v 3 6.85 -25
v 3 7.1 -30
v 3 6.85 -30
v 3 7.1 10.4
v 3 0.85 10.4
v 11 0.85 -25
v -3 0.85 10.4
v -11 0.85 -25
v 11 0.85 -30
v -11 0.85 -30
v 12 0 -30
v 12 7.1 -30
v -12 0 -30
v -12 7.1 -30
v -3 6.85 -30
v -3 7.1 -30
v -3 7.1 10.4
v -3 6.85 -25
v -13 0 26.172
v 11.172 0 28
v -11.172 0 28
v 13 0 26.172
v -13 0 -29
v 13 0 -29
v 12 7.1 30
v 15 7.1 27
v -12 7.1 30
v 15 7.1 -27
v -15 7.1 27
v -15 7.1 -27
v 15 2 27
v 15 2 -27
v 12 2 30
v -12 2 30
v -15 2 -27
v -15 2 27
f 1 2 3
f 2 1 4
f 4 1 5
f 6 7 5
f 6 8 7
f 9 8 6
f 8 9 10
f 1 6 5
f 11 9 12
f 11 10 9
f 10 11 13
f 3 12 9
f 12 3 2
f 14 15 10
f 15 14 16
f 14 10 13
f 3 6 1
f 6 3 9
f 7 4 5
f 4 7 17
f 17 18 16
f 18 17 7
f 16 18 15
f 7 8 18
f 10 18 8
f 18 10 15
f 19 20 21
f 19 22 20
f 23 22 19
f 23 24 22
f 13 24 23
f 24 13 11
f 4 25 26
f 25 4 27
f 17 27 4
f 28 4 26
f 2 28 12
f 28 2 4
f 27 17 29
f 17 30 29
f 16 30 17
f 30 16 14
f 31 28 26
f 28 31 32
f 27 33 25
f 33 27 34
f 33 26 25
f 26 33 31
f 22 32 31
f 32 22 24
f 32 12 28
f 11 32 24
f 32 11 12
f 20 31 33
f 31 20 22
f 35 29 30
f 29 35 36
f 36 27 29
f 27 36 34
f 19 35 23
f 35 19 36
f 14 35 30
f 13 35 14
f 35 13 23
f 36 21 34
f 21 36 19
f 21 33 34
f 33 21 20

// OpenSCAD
// file: peglock_modules.scad
default_peg_diameter=6;
default_peg_spacing=25.4;
default_highpeg_stickout=4.6;
default_highpeg_angleout=8;
default_highpeg_stickup=6;
default_lowpeg_stickout=8;

default_base_width=30;
default_base_height=60;

$peg_diameter = default_peg_diameter;
$peg_spacing = default_peg_spacing;
$highpeg_stickout = default_highpeg_stickout;
$highpeg_angleout = default_highpeg_angleout;
$highpeg_stickup = default_highpeg_stickup;
$lowpeg_stickout = default_lowpeg_stickout;

$base_width = default_base_width;
$base_height = default_base_height;

$peg_radius = default_peg_diameter / 2;
$holder_height = 25.4 + 6 + 4;

module peglockInit(
    peg_diameter = default_peg_diameter,
    peg_spacing = default_peg_spacing,
    highpeg_stickout = default_highpeg_stickout,
    highpeg_angleout = default_highpeg_angleout,
    highpeg_stickup = default_highpeg_stickup,
    lowpeg_stickout = default_lowpeg_stickout,
    base_width = default_base_width,
    base_height = default_base_height
    ) {
    $peg_diameter = peg_diameter;
    $peg_spacing = peg_spacing;
    $highpeg_stickout = highpeg_stickout;
    $highpeg_angleout = highpeg_angleout;
    $highpeg_stickup = highpeg_stickup;
    $lowpeg_stickout = lowpeg_stickout;
    $base_width = base_width;
    $base_height = base_height;

    $peg_radius = $peg_diameter/2;
    $holder_height = 25.4 + 6 + 4;

    children();
}

module quartersphere(radius=$peg_radius) {
    rotate_extrude(angle=-180, $fn=42) intersection() {
        square(radius);
        circle(radius, $fn=42);
    };
}

module halfcylinder(length, radius=$peg_radius) {
    rotate_extrude(angle=-180, $fn=42) square([radius,length]);
    translate([0,0,length]) children();
}

module angledhalfcylinder(length, radius=$peg_radius) {
    intersection() {
        multmatrix([
            [1, 0,-1, 0],
            [0, 1, 0, 0],
            [0, 0, 1, 0]
        ])
        halfcylinder(length + radius, radius);
        
        translate([-length, -radius, 0])
        cube([length + radius, radius, length + radius]);
    };

    translate([-length, 0, length])
    rotate([0,-90,0])
    children();
}

module double(v=[1,0,0]) {
    children();
    mirror(v) children();
}

module halfHolder(is_cutting=false) {
    translate(is_cutting ? [0,0,-5] : [0,0,0])
    cube([3,6,$holder_height] + (is_cutting ? [0,.25,5] : [0,0,0]));

    translate([3,0,0]) {
        linear_extrude($holder_height, scale=0)
        polygon([[0,0], [8,0], [0,6]]);

        if (is_cutting) {
            translate([0,0,-5]) 
            linear_extrude(5) 
            polygon([[0,0], [8,0], [0,6]]);
        }
    }
}

module holder(is_cutting=false) {
    double() halfHolder(is_cutting); 
}

module halfPeglockAttachment() {
    translate([0, -$holder_height/2]) rotate([-90,0,0]) rotate([0,0,-90])
    halfHolder();

    translate([6, -$peg_spacing/2]) rotate([-90,0,-90])
    halfcylinder($lowpeg_stickout)
    quartersphere();
    
    translate([6, +$peg_spacing/2]) rotate([-90,0,-90])
    halfcylinder($highpeg_stickout)
    angledhalfcylinder($highpeg_angleout)
    halfcylinder($highpeg_stickup)
    quartersphere();
}

module peglockAttachment() {
    difference() {
        union() {
            double() translate([.25,0,0]) halfPeglockAttachment();
            linear_extrude(.2) square([.5,$holder_height], center=true); 
        }
        translate([0,0,-.5]) linear_extrude(12) square([6.5,14], center=true); 
    }
}

module chamfer(pt, v0, v1, v2) {
    multmatrix([
        [v0[0],v1[0],v2[0],pt[0]],
        [v0[1],v1[1],v2[1],pt[1]],
        [v0[2],v1[2],v2[2],pt[2]],
    ]) 
    linear_extrude(1) polygon([[0,0],[1,0],[0,1]]);

    translate(pt) cube(1, center=true);
}

module peglockBase(
    width=$base_width,
    height=$base_height
) {
    topright = [width/2, 0, height/2];
    depth = [0, 6.25+.85, 0];

    render() difference() {
        translate(-topright)
        cube(topright * 2 + depth);

        translate([0, .85, 5-height/2]) 
        holder(is_cutting=true);

        double([1,0,0]) {
            double([0,0,1]) {
                chamfer(topright, [-3,0,0], [0,0,-3], depth);
                chamfer(topright, [-2,0,0], [0,2,0], [0,0,-height/2]);
            }
            translate(topright - [0,0,3]) rotate([0,45,0]) chamfer([0,0,0], [0,0,-2], [0,2,0], [-sqrt(18),0,0]);
        }
        chamfer(topright, [0,0,-2], [0,2,0], [-width,0,0]);        
    }
}
// main file
use <peglock_modules.scad>

base_width = 30; // [22:.1:30]
base_height = 60; // [42:.1:60]

peglockInit(
    base_width = base_width,
    base_height = base_height) {
    peglockBase();
}
